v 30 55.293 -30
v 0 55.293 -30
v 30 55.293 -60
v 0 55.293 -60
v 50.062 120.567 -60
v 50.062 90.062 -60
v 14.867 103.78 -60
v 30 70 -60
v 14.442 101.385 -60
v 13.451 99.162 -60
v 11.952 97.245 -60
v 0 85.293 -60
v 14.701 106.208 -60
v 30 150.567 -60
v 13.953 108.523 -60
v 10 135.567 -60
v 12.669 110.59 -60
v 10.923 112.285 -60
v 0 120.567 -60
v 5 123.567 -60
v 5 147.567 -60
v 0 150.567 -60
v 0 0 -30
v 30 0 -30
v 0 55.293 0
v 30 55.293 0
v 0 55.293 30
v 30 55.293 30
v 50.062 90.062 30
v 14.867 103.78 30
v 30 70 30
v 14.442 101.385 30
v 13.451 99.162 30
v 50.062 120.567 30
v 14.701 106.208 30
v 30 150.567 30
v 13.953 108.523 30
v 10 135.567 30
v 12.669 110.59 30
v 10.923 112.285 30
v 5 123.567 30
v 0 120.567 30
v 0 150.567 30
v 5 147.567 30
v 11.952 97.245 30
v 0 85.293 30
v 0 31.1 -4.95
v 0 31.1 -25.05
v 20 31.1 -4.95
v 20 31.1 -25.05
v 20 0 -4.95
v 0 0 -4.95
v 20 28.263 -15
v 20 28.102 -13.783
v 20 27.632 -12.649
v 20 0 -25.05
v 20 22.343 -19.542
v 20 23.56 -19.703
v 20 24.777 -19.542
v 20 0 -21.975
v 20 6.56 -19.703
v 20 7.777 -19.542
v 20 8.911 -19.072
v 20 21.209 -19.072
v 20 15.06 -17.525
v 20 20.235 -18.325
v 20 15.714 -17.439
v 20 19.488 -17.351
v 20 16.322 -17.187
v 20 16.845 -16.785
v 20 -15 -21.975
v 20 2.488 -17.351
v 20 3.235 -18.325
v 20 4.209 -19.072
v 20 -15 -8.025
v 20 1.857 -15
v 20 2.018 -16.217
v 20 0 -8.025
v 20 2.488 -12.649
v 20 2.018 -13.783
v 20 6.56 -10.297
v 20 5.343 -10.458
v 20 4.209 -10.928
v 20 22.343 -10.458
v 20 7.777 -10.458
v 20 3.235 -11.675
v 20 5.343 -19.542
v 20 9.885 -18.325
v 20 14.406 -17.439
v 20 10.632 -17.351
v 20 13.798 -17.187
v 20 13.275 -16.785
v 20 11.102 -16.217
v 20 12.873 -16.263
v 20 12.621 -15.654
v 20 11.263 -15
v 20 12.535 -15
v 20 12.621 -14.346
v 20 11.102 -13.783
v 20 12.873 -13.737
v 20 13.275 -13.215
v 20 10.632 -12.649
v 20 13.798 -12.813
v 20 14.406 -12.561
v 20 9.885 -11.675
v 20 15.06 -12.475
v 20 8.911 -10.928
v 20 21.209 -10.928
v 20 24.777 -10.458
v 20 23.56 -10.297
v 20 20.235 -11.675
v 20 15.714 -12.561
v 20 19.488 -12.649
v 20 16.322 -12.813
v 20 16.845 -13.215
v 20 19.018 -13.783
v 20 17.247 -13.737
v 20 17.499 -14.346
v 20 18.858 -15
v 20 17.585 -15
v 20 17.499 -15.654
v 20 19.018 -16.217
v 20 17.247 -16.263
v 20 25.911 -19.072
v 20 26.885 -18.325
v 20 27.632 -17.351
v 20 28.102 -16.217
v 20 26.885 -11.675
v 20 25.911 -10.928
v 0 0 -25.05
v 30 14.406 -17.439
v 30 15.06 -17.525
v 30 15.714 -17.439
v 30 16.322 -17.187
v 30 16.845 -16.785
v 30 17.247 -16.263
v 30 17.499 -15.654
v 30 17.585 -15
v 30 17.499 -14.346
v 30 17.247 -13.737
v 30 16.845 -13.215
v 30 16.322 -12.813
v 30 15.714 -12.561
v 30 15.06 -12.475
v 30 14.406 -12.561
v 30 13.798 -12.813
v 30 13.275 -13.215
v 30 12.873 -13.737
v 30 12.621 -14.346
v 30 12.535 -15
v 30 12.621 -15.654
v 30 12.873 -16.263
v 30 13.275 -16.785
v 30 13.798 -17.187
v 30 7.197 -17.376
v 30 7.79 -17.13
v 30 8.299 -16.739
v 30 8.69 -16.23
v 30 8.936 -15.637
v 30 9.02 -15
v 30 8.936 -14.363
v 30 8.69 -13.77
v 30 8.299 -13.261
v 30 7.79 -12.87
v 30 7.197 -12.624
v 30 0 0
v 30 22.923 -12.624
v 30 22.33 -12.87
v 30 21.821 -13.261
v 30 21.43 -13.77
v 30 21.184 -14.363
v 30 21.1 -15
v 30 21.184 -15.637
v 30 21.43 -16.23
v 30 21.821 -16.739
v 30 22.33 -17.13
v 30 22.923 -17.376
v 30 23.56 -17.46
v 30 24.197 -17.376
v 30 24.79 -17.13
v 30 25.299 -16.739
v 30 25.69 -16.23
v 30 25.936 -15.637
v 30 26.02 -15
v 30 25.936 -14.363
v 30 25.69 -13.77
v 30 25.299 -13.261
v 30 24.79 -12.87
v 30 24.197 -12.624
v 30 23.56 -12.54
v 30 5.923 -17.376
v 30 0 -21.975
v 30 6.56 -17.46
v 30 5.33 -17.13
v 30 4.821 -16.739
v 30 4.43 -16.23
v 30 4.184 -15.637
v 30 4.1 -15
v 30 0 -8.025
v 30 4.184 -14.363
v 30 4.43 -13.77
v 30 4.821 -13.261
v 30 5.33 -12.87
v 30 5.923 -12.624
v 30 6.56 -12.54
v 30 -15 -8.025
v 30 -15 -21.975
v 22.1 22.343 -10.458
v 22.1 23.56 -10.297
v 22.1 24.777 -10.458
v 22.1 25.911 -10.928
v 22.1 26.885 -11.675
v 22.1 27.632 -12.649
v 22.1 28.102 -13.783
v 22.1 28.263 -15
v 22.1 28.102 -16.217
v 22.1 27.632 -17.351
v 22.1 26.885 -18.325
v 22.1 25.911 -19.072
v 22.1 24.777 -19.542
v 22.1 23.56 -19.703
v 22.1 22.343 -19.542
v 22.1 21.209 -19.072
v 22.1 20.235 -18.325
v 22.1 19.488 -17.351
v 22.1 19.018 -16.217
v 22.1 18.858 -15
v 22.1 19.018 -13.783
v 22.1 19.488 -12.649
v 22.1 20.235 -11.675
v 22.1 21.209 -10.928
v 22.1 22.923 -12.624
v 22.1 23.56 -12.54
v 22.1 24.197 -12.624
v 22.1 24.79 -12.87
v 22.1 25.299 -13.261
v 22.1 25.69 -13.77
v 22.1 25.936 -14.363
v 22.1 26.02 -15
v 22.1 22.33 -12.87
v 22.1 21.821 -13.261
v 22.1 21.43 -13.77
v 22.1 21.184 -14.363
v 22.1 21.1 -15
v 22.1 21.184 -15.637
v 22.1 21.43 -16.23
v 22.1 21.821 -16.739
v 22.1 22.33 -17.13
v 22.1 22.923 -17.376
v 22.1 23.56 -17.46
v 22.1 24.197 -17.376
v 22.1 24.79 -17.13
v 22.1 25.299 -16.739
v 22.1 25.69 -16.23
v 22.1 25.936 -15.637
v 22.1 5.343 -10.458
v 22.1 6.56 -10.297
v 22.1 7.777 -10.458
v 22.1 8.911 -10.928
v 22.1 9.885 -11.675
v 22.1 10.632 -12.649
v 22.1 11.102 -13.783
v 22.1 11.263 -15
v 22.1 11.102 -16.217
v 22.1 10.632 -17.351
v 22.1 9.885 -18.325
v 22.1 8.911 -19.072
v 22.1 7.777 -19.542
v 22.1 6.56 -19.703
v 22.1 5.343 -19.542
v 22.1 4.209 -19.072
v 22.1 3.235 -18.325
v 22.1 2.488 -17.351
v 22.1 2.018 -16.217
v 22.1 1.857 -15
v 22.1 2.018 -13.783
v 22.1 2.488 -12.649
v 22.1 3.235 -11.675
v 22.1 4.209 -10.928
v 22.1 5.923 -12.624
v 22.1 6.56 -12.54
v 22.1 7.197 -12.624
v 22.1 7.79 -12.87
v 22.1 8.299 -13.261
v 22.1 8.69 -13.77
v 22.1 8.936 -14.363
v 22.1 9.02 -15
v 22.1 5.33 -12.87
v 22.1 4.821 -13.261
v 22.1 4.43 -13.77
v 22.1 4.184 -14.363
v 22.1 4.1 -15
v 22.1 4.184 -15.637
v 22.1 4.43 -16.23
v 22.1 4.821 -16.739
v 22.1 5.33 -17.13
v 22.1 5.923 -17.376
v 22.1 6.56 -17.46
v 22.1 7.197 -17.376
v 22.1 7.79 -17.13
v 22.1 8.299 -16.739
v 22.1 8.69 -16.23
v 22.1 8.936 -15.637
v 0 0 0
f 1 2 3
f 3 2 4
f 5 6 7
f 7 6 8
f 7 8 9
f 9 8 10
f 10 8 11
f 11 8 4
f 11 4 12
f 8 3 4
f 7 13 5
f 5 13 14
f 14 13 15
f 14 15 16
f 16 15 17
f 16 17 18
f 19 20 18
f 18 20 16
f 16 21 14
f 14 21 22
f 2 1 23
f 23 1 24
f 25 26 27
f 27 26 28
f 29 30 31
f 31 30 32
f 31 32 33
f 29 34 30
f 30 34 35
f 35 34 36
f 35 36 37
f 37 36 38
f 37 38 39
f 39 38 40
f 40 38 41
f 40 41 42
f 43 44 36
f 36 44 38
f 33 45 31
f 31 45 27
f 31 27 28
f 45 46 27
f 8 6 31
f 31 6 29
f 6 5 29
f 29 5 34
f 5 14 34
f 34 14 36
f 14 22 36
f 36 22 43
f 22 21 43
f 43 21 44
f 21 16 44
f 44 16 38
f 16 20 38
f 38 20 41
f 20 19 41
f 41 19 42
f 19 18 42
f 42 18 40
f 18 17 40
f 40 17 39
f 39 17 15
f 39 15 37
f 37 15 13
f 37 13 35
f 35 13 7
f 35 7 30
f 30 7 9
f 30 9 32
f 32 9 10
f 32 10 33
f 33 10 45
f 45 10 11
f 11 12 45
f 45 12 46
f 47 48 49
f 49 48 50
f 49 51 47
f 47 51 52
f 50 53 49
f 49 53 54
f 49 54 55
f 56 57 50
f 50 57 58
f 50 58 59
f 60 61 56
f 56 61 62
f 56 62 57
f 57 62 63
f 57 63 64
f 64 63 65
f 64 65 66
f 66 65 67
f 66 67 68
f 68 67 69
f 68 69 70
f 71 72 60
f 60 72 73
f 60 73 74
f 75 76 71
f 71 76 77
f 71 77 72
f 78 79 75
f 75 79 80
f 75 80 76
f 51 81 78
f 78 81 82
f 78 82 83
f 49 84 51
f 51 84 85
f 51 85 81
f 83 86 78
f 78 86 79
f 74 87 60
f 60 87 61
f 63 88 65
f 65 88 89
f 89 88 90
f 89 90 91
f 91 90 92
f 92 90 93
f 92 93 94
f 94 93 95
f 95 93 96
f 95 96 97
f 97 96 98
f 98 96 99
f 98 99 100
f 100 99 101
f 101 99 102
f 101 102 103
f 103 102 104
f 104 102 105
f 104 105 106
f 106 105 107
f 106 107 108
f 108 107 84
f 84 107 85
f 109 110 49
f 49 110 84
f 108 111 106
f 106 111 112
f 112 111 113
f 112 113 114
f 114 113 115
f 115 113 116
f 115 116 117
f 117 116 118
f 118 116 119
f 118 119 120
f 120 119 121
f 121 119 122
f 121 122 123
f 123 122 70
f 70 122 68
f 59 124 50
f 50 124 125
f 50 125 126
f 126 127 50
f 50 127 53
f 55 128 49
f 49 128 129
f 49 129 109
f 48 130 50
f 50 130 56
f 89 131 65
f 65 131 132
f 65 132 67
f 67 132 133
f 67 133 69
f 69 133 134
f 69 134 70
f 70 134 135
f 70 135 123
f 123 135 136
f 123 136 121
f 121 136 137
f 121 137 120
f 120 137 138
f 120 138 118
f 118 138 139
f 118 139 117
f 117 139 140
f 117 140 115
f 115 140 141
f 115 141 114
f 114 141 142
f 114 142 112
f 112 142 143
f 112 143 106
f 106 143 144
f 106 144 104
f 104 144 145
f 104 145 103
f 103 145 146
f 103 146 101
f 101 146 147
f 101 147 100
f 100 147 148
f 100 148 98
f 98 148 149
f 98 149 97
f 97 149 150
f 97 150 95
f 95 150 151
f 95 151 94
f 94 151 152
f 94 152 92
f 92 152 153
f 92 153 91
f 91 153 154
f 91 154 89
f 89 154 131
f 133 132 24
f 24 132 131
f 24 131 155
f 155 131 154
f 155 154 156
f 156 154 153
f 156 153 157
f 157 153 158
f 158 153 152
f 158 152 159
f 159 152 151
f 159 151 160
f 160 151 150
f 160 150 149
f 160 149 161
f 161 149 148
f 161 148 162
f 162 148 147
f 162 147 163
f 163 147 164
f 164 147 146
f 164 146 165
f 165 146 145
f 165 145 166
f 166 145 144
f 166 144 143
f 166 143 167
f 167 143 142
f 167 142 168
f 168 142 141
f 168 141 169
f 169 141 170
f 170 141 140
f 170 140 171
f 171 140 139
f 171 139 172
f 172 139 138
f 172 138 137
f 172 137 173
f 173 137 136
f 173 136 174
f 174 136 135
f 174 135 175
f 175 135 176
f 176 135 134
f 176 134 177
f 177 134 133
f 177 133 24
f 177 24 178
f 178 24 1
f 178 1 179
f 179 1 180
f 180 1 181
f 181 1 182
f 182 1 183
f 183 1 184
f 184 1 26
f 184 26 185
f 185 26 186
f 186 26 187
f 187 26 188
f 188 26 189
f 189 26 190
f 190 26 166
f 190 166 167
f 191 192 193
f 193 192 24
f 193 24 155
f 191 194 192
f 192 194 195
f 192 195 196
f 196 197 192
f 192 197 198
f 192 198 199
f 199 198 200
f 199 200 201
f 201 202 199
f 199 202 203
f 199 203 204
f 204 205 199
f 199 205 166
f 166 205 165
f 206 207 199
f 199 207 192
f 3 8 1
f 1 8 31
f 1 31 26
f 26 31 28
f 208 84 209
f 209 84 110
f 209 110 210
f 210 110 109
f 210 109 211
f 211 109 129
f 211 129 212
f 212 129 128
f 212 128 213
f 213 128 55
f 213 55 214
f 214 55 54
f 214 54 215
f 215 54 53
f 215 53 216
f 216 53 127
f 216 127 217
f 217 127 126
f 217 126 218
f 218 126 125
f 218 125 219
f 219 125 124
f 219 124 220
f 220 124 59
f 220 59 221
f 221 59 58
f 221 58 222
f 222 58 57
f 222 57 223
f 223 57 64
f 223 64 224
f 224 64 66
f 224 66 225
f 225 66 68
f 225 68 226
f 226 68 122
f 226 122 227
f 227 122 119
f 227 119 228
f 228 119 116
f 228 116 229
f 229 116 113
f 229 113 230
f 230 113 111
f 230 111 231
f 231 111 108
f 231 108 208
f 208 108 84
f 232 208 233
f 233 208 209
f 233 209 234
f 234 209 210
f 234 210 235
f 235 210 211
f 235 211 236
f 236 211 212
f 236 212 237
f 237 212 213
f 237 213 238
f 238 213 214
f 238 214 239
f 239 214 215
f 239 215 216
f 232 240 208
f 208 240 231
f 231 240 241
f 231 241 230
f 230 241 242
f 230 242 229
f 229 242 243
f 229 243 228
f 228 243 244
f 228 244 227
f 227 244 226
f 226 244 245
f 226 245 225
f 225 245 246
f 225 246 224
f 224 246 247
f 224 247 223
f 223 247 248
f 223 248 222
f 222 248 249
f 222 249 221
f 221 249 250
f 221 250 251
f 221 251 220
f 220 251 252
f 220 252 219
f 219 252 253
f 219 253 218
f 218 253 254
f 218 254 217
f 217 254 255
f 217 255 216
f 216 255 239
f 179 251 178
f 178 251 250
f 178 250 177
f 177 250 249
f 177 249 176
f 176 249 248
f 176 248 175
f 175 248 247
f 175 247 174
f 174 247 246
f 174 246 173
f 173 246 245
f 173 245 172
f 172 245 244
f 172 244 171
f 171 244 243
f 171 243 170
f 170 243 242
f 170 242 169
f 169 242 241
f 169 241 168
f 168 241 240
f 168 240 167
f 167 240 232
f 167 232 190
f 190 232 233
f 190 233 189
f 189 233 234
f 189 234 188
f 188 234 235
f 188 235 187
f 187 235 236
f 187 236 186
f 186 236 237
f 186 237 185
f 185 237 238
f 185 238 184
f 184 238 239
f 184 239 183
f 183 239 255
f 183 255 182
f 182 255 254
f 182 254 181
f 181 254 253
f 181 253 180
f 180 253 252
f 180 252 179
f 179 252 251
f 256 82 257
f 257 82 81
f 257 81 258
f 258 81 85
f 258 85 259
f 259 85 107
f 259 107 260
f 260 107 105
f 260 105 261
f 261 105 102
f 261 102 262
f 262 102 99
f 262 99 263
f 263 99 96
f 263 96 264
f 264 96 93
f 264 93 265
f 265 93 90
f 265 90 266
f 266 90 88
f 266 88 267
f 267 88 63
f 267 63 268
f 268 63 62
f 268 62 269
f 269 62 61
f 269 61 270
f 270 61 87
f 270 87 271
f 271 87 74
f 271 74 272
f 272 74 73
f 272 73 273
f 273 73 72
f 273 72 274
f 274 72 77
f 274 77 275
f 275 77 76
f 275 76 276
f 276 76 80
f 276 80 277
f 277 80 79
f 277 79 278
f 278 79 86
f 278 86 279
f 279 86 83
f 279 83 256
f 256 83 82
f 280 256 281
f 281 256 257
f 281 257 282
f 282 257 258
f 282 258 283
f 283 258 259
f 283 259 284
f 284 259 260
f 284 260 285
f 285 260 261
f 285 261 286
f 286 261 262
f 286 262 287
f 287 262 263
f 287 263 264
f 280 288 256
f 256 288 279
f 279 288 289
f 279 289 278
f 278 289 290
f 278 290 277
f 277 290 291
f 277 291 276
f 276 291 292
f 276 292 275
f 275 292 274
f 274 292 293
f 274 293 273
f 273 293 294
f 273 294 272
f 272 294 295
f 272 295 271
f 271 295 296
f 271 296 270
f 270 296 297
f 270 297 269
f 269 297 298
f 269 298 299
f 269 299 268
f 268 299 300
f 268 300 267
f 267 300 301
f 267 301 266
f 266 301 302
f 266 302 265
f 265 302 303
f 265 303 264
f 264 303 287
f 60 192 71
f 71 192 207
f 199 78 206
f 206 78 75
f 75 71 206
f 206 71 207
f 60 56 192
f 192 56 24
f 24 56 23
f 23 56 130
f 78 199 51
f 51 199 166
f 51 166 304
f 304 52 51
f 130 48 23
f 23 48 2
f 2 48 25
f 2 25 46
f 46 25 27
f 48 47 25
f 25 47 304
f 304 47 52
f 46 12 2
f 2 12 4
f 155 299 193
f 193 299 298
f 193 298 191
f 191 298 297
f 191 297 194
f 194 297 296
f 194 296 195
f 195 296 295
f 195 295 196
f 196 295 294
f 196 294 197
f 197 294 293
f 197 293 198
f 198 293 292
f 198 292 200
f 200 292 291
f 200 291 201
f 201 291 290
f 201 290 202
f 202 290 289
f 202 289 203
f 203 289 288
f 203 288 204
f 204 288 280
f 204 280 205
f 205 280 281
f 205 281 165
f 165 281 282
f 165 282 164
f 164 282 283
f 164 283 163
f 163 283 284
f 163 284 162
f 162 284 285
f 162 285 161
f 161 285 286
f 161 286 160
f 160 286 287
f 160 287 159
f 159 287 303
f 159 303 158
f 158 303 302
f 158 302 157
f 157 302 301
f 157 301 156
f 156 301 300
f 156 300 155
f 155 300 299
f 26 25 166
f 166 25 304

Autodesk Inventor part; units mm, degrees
ref_plane "YZ Plane" through (0, 0, 0) normal (1, 0, 0) x (0, 1, 0)
ref_plane "XZ Plane" through (0, 0, 0) normal (0, 1, 0) x (-1, 0, 0)
sketch "Sketch1" plane through (0, 0, 0) normal (0, 0, 1) x (1, 0, 0)
  line L0 (0, 0) -> (25, 0)
  line L1 (25, 0) -> (25, 40)
  line L2 (25, 40) -> (0, 40)
  line L3 (0, 40) -> (0, 0)
  dimension "d1" = 25
  dimension "d2" = 40
  dimension "d3" = 25
extrude "Extrusion1" add sketch "Sketch1" against normal blind 30
sketch "Sketch2" plane through (25, 0, 0) normal (1, 0, 0) x (0, 0, -1)
  line L0 (0, 0) -> (30, 0) projected
  circle A0 centre (15, 6.56) radius 2.46
extrude "Extrusion2" cut sketch "Sketch2" against normal blind 30
sketch "Sketch3" plane through (0, 0, 0) normal (-1, 0, 0) x (0, 0, 1)
  line L0 (0, 0) -> (-30, 0) projected
  line L1 (-25.05, 0) -> (-4.95, 0)
  line L2 (-4.95, 0) -> (-4.95, 33.12)
  line L3 (-4.95, 33.12) -> (-25.05, 33.12)
  line L4 (-25.05, 33.12) -> (-25.05, 0)
  dimension "d11" = 20.1
extrude "Extrusion3" cut sketch "Sketch3" against normal blind 20
sketch "Sketch4" plane through (0, 0, 0) normal (0, -1, 0) x (1, 0, 0)
  line L0 (20, -4.95) -> (20, -25.05) projected
  line L1 (20, -15) -> (25, -15)
  line L2 (25, 0) -> (25, -30) projected
  line L3 (20, -8.025) -> (25, -8.025)
  line L4 (25, -8.025) -> (25, -21.975)
  line L5 (25, -21.975) -> (20, -21.975)
  line L6 (20, -21.975) -> (20, -8.025)
  line L7 (20, -8.025) -> (25, -21.975) construction
  line L8 (25, -8.025) -> (20, -21.975) construction
  line L9 (25, -12.54) -> (25, -17.46) projected
  point P0 (0, 0)
  point P1 (22.5, -15)
  dimension "d14" = 13.95
extrude "Extrusion4" add sketch "Sketch4" along normal blind 15
sketch "Sketch5" plane through (20, 0, 0) normal (-1, 0, 0) x (0, 0, 1)
  circle A0 centre (-15, 6.56) radius 2.46 projected
  circle A1 centre (-15, 6.56) radius 4.7025
  circle A2 centre (-15, 6.56) radius 2.46 projected
  circle A3 centre (-15, 6.56) radius 2.46
  point P0 (0, 0)
  dimension "d17" = 9.405
extrude "Extrusion5" cut sketch "Sketch5" against normal blind 2.1
sketch "Sketch6" plane through (25, 0, 0) normal (1, 0, 0) x (0, 0, -1)
  circle A0 centre (15, 6.56) radius 4.7025 projected
  line L0 (15, 6.56) -> (15, 23.56)
  circle A1 centre (15, 23.56) radius 2.46
  point P0 (0, 0)
  dimension "d20" = 17
  dimension "d21" = 4.92
extrude "Extrusion6" cut sketch "Sketch6" against normal blind 10 contours A1
sketch "Sketch7" plane through (20, 0, 0) normal (-1, 0, 0) x (0, 0, 1)
  circle A0 centre (-15, 23.56) radius 2.46 projected
  circle A1 centre (-15, 23.56) radius 4.7025
  point P0 (0, 0)
  dimension "d24" = 9.405
extrude "Extrusion7" cut sketch "Sketch7" against normal blind 2.1
sketch "Sketch9" plane through (25, 0, 0) normal (1, 0, 0) x (0, 0, -1)
  circle A0 centre (15, 6.56) radius 2.46 projected
  circle A1 centre (15, 6.56) radius 2.46
  circle A2 centre (15, 23.56) radius 2.46 projected
  circle A3 centre (15, 23.56) radius 2.46
  line L0 (30, 40) -> (30, 0) projected
  line L1 (30, 0) -> (30, 40)
  line L2 (30, 40) -> (0, 40)
  line L3 (0, 40) -> (0, 0)
  line L4 (0, 0) -> (8.025, 0) projected
  line L5 (21.975, 0) -> (21.975, -15)
  line L6 (21.975, -15) -> (8.025, -15)
  line L7 (8.025, -15) -> (8.025, 0)
  line L8 (0, 0) -> (8.025, 0)
  line L9 (21.975, 0) -> (30, 0)
extrude "Extrusion8" add sketch "Sketch9" along normal blind 5
sketch "Sketch10" plane through (0, 40, 0) normal (0, 1, 0) x (1, 0, 0)
  line L0 (0, 30) -> (30, 30) projected
  line L1 (30, 0) -> (0, 0) projected
  line L2 (0, 30) -> (30, 30)
  line L3 (30, 30) -> (30, 0)
  line L4 (30, 0) -> (0, 0)
  line L5 (0, 0) -> (0, 30)
extrude "Extrusion9" add sketch "Sketch10" along normal blind 30
sketch "Sketch12" plane through (30, 0, 0) normal (1, 0, 0) x (0, 0, -1)
  circle A0 centre (15, 6.56) radius 2.46 projected
  line L0 (15, 6.56) -> (15, 15.06)
  circle A1 centre (15, 15.06) radius 2.525
  point P0 (0, 0)
  dimension "d31" = 8.5
  dimension "d33" = 5.05
extrude "Extrusion10" cut sketch "Sketch12" against normal blind 30 contours A1
sketch "Sketch15" plane through (0, 0, -25.05) normal (-1, 0, 0) x (0, 0, 1)
  line L0 (0, 33.12) -> (20.1, 33.12) projected
  line L1 (20.1, 33.12) -> (20.1, 0) projected
  line L2 (0, 33.12) -> (20.1, 33.12)
  line L3 (20.1, 33.12) -> (20.1, 31.1)
  line L4 (20.1, 31.1) -> (0, 31.1)
  line L5 (0, 31.1) -> (0, 33.12)
  point P0 (25.05, 0)
  dimension "d57" = 2.02
extrude "Extrusion13" add sketch "Sketch15" against normal blind 20
sketch "Sketch17" plane through (0, 0, 0) normal (0, 0, 1) x (1, 0, 0)
  line L0 (0, 70) -> (30, 70) projected
  line L1 (30, 70) -> (50.0622, 90.0622)
  line L2 (30, 70) -> (80, 70) construction
  line L3 (11.9522, 97.2454) -> (0, 85.2932)
  line L4 (0, 70) -> (0, 85.2932)
  line L5 (0, 70) -> (0, 0) projected
  line L6 (0, 70) -> (30, 70)
  line L7 (10.923, 112.2849) -> (0, 120.567)
  line L8 (50.0622, 105.3553) -> (50.0622, 120.567)
  line L9 (50.0622, 105.3553) -> (50.0622, 90.0622)
  arc A0 (11.9522, 97.2454) -> (10.923, 112.2849) centre (4.8811, 104.3165) ccw
  line L10 (0, 150.567) -> (30, 150.567)
  line L11 (30, 150.567) -> (50.0622, 120.567)
  line L12 (5, 147.567) -> (0, 150.567)
  line L13 (5, 123.567) -> (0, 120.567)
  line L14 (5, 123.567) -> (10, 135.567)
  line L15 (10, 135.567) -> (5, 147.567)
  dimension "d61" = 45
  dimension "d62" = 32.0271
  dimension "d72" = 10
extrude "Extrusion14" add sketch "Sketch17" against normal blind 30
sketch "Sketch22" plane through (0, 0, 0) normal (0, 0, 1) x (1, 0, 0)
  line L0 (30, 0) -> (30, 70) projected
  line L1 (50.0622, 120.567) -> (50.0622, 90.0622) projected
  line L2 (30, 70) -> (50.0622, 90.0622)
  line L3 (50.0622, 90.0622) -> (50.0622, 120.567)
  line L4 (50.0622, 120.567) -> (30, 150.567) projected
  line L5 (50.0622, 120.567) -> (30, 150.567)
  line L6 (30, 150.567) -> (0, 150.567) projected
  line L7 (30, 150.567) -> (0, 150.567)
  line L8 (0, 150.567) -> (5, 147.567) projected
  line L9 (0, 150.567) -> (5, 147.567)
  line L10 (5, 147.567) -> (10, 135.567) projected
  line L11 (5, 147.567) -> (10, 135.567)
  line L12 (5, 123.567) -> (10, 135.567) projected
  line L13 (10, 135.567) -> (5, 123.567)
  line L14 (5, 123.567) -> (0, 120.567) projected
  line L15 (5, 123.567) -> (0, 120.567)
  line L16 (10.923, 112.2849) -> (0, 120.567) projected
  line L17 (0, 120.567) -> (10.923, 112.2849)
  line L18 (0, 85.2932) -> (11.9522, 97.2454) projected
  line L19 (11.9522, 97.2454) -> (0, 85.2932)
  line L20 (0, 85.2932) -> (0, 55.2932)
  line L21 (0, 0) -> (0, 85.2932) projected
  line L22 (0, 55.2932) -> (30, 55.2932)
  line L23 (30, 55.2932) -> (30, 70)
  arc A0 (11.9522, 97.2454) -> (10.923, 112.2849) centre (4.8811, 104.3165) ccw projected
  arc A1 (11.9522, 97.2454) -> (10.923, 112.2849) centre (4.8811, 104.3165) ccw
  dimension "d87" = 30
extrude "Extrusion15" add sketch "Sketch22" along normal blind 30
ref_plane "Work Plane1" through (0, 0, -15) normal (0, 0, 1) x (1, 0, 0)
mirror "Mirror1" about plane through (0, 0, -15) normal (0, 0, 1) of "Extrusion15"
properties part number "rec_c_24mm_x_90mm"
